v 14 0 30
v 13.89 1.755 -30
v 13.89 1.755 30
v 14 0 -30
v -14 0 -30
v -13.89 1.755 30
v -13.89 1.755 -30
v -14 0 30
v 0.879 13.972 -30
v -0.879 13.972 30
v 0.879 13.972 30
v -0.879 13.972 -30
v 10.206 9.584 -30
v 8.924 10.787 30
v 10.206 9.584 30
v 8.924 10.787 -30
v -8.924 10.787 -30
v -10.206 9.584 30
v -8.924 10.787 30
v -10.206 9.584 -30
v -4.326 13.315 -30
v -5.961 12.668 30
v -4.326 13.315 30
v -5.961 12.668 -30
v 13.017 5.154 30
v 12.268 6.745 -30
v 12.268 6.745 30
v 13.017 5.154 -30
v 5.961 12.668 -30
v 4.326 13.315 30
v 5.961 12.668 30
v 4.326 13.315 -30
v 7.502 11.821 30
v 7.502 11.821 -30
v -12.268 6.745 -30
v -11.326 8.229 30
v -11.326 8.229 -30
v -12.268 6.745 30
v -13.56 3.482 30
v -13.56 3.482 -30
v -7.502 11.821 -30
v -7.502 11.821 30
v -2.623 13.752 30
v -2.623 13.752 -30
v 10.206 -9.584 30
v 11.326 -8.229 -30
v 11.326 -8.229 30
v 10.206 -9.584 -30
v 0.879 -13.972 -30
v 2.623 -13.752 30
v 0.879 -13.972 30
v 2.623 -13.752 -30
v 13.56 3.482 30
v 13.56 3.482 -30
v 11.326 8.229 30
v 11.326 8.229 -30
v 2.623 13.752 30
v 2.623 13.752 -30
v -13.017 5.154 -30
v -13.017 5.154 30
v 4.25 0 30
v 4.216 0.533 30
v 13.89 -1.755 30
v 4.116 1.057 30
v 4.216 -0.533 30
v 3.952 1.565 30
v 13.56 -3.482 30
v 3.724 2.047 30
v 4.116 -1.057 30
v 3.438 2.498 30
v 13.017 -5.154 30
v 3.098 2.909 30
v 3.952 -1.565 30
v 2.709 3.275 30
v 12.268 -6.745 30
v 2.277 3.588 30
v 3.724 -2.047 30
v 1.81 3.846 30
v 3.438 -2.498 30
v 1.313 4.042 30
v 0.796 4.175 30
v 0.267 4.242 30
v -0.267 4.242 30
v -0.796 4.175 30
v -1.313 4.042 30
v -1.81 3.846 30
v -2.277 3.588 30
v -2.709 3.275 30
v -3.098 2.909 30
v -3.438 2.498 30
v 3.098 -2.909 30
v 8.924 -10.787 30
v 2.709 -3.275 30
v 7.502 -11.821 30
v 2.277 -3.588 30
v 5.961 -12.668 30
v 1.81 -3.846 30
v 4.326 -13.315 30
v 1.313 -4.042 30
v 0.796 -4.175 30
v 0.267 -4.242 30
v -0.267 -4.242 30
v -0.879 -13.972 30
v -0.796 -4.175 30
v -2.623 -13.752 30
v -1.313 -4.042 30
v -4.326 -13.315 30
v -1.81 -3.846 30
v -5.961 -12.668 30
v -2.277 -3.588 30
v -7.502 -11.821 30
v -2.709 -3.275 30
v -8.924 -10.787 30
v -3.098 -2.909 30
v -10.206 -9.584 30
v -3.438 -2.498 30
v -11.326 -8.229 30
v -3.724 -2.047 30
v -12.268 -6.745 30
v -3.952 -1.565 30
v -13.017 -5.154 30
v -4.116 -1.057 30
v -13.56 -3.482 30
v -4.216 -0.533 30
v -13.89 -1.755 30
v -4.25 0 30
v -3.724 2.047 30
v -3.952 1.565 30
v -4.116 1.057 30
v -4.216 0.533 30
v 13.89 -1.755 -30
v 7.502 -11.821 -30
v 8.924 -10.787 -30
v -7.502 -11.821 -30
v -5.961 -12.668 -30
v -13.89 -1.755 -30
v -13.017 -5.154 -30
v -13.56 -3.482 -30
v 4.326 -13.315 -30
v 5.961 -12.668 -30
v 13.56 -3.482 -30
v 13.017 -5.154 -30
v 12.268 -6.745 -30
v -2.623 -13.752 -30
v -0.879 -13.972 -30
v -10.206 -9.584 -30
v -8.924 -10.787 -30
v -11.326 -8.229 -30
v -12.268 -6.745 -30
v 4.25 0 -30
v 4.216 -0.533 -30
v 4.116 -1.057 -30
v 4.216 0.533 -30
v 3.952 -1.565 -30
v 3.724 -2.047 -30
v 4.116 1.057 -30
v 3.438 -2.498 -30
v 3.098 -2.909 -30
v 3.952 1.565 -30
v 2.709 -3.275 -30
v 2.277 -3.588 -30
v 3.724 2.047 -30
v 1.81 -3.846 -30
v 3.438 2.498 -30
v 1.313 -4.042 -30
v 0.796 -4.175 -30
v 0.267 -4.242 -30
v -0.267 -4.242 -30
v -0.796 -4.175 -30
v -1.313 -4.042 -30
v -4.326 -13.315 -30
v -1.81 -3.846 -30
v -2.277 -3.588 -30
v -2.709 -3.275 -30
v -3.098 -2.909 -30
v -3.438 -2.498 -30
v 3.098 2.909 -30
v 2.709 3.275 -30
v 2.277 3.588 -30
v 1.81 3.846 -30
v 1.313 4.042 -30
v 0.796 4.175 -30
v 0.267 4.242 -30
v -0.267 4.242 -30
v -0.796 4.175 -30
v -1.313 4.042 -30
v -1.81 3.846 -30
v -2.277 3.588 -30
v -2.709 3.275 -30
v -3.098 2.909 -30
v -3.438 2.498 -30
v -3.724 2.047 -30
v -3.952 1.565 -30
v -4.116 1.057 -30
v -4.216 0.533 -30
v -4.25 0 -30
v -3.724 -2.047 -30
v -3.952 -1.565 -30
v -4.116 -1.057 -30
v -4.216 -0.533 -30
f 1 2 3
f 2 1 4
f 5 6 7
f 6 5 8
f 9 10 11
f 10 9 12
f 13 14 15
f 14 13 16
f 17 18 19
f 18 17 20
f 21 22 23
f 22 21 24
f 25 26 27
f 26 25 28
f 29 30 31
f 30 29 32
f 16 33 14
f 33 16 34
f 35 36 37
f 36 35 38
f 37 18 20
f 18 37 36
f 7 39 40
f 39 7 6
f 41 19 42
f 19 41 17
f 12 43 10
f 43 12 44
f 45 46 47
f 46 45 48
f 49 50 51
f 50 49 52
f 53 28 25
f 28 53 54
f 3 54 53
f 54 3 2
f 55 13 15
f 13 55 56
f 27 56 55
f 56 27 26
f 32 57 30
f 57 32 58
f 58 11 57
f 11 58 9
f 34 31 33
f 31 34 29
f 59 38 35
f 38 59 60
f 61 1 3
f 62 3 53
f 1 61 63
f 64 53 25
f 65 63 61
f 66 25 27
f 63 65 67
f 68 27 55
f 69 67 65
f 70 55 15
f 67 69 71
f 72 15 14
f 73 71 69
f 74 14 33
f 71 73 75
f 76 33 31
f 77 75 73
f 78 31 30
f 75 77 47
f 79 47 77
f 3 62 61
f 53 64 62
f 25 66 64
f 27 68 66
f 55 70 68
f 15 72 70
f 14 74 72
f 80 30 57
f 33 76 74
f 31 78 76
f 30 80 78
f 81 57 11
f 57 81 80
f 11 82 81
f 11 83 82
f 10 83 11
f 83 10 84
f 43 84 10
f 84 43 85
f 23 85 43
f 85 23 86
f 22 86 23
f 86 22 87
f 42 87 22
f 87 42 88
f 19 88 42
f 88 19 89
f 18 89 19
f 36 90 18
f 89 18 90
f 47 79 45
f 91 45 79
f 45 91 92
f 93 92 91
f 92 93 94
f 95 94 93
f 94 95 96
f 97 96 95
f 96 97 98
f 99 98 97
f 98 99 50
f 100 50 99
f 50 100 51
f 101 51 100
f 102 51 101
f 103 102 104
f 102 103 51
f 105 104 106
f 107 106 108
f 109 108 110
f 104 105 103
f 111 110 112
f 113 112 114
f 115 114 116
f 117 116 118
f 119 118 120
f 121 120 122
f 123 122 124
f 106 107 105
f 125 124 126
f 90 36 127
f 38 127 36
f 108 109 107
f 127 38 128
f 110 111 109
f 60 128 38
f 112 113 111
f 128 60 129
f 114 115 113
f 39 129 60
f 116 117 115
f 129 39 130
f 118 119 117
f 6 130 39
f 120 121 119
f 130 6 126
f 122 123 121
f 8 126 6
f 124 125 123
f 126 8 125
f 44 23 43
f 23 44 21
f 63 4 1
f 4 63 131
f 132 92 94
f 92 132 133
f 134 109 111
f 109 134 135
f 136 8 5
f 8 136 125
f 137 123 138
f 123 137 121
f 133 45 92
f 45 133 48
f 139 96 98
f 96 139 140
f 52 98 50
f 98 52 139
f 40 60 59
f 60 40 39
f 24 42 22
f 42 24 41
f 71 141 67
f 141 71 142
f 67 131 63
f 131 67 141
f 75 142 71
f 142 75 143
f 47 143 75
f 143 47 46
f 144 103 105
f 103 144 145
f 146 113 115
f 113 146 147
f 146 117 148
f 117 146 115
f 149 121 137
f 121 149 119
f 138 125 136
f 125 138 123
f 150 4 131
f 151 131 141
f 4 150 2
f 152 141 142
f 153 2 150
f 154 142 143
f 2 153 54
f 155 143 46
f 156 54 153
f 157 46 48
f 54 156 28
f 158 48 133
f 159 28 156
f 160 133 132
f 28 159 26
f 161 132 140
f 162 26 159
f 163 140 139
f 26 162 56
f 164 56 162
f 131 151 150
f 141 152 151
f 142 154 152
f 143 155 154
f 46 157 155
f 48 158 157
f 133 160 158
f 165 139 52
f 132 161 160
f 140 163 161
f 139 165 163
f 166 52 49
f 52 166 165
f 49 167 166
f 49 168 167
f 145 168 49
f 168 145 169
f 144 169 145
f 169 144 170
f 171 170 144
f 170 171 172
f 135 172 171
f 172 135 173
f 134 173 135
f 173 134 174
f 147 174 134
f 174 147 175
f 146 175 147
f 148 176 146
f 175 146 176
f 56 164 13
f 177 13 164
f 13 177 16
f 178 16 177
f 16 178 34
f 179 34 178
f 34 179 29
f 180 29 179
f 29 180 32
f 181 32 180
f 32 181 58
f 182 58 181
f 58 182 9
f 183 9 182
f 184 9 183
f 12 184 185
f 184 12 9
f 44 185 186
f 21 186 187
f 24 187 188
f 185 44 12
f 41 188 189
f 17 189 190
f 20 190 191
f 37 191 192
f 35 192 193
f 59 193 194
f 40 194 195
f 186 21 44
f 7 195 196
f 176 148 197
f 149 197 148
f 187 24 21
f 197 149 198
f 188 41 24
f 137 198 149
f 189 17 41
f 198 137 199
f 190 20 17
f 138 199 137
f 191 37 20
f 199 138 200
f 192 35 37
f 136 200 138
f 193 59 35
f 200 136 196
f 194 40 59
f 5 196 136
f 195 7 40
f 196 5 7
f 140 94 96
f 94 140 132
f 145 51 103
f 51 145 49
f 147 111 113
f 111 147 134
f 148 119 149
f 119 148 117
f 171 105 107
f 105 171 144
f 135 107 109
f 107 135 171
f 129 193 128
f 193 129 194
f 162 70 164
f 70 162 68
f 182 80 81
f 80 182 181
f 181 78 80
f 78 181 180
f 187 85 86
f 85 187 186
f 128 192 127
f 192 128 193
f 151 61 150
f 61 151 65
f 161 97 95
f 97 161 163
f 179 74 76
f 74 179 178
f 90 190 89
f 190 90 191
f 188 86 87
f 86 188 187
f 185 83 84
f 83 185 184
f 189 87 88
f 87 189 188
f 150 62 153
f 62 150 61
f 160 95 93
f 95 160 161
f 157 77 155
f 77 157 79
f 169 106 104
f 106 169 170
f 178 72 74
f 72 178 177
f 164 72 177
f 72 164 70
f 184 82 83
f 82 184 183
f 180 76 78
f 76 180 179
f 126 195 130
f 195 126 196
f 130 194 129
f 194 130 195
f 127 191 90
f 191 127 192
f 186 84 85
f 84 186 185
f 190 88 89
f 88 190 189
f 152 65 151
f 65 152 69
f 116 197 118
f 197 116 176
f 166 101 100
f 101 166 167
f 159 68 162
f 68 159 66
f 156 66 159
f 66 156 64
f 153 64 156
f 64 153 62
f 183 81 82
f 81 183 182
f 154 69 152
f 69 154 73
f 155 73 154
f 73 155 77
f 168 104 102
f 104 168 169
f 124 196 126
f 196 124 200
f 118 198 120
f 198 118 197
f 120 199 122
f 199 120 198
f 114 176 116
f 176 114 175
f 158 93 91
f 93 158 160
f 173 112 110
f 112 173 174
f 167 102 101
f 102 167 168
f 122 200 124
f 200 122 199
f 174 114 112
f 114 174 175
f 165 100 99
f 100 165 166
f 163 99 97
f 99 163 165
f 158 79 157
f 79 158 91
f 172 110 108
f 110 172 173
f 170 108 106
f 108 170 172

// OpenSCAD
$fn = 50;


difference() {
	union() {
		translate(v = [0, 0, -30.0000000000]) {
			cylinder(h = 60, r = 14.0000000000);
		}
	}
	union() {
		translate(v = [0, 0, -100.0000000000]) {
			cylinder(h = 200, r = 4.2500000000);
		}
	}
}
